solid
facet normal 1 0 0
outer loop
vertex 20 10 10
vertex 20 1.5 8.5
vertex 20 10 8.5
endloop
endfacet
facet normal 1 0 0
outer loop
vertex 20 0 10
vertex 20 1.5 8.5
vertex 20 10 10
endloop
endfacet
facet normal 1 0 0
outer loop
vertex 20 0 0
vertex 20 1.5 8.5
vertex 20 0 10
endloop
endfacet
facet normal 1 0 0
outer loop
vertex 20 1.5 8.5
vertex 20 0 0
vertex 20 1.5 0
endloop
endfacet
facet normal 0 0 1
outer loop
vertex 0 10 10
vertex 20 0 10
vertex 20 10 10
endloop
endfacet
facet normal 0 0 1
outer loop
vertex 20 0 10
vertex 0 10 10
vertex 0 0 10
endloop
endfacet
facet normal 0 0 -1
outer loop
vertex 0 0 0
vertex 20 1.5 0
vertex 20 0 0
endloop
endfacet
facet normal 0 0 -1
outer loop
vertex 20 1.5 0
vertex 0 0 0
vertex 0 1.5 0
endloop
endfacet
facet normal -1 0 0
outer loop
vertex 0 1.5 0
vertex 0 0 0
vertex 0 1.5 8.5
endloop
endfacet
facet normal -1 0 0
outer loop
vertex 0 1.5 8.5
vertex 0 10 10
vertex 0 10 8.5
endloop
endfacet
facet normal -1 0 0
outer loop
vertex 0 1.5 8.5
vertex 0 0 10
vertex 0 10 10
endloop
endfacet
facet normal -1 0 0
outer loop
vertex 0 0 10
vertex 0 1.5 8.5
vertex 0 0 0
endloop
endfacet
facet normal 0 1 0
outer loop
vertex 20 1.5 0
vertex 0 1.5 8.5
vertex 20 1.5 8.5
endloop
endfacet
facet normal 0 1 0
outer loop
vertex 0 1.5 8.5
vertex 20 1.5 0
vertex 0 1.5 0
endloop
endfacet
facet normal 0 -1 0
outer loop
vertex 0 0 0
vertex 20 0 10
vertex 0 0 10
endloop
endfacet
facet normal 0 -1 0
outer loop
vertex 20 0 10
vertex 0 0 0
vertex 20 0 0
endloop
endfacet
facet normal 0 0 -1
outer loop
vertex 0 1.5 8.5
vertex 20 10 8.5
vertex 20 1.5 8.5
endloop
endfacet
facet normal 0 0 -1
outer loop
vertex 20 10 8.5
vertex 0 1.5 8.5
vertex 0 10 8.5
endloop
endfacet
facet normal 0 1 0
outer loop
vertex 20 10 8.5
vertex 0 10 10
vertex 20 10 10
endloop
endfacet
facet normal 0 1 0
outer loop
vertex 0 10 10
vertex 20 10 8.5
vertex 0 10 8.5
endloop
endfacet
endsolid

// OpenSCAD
// Plain L-bracket for mounting the license plate to the back of the truck/trailer.
// Horizontal leg sits flat on the ~10 mm horizontal mounting surface;
// vertical leg hangs down and the plate glues onto its outward face.

// ---------- PARAMETERS ----------
plate_width       = 20;       // mm, width of the plate
plate_height      = 10;       // mm, height of the plate
mount_depth       = 10;       // mm, horizontal-leg length
bracket_thickness = 1.5;      // mm, wall thickness for both legs

// ---------- MODULES ----------
module vertical_leg() {
    cube([plate_width, bracket_thickness, plate_height]);
}

module horizontal_leg() {
    translate([0, 0, plate_height - bracket_thickness])
        cube([plate_width, mount_depth, bracket_thickness]);
}

module bracket() {
    vertical_leg();
    horizontal_leg();
}

bracket();
